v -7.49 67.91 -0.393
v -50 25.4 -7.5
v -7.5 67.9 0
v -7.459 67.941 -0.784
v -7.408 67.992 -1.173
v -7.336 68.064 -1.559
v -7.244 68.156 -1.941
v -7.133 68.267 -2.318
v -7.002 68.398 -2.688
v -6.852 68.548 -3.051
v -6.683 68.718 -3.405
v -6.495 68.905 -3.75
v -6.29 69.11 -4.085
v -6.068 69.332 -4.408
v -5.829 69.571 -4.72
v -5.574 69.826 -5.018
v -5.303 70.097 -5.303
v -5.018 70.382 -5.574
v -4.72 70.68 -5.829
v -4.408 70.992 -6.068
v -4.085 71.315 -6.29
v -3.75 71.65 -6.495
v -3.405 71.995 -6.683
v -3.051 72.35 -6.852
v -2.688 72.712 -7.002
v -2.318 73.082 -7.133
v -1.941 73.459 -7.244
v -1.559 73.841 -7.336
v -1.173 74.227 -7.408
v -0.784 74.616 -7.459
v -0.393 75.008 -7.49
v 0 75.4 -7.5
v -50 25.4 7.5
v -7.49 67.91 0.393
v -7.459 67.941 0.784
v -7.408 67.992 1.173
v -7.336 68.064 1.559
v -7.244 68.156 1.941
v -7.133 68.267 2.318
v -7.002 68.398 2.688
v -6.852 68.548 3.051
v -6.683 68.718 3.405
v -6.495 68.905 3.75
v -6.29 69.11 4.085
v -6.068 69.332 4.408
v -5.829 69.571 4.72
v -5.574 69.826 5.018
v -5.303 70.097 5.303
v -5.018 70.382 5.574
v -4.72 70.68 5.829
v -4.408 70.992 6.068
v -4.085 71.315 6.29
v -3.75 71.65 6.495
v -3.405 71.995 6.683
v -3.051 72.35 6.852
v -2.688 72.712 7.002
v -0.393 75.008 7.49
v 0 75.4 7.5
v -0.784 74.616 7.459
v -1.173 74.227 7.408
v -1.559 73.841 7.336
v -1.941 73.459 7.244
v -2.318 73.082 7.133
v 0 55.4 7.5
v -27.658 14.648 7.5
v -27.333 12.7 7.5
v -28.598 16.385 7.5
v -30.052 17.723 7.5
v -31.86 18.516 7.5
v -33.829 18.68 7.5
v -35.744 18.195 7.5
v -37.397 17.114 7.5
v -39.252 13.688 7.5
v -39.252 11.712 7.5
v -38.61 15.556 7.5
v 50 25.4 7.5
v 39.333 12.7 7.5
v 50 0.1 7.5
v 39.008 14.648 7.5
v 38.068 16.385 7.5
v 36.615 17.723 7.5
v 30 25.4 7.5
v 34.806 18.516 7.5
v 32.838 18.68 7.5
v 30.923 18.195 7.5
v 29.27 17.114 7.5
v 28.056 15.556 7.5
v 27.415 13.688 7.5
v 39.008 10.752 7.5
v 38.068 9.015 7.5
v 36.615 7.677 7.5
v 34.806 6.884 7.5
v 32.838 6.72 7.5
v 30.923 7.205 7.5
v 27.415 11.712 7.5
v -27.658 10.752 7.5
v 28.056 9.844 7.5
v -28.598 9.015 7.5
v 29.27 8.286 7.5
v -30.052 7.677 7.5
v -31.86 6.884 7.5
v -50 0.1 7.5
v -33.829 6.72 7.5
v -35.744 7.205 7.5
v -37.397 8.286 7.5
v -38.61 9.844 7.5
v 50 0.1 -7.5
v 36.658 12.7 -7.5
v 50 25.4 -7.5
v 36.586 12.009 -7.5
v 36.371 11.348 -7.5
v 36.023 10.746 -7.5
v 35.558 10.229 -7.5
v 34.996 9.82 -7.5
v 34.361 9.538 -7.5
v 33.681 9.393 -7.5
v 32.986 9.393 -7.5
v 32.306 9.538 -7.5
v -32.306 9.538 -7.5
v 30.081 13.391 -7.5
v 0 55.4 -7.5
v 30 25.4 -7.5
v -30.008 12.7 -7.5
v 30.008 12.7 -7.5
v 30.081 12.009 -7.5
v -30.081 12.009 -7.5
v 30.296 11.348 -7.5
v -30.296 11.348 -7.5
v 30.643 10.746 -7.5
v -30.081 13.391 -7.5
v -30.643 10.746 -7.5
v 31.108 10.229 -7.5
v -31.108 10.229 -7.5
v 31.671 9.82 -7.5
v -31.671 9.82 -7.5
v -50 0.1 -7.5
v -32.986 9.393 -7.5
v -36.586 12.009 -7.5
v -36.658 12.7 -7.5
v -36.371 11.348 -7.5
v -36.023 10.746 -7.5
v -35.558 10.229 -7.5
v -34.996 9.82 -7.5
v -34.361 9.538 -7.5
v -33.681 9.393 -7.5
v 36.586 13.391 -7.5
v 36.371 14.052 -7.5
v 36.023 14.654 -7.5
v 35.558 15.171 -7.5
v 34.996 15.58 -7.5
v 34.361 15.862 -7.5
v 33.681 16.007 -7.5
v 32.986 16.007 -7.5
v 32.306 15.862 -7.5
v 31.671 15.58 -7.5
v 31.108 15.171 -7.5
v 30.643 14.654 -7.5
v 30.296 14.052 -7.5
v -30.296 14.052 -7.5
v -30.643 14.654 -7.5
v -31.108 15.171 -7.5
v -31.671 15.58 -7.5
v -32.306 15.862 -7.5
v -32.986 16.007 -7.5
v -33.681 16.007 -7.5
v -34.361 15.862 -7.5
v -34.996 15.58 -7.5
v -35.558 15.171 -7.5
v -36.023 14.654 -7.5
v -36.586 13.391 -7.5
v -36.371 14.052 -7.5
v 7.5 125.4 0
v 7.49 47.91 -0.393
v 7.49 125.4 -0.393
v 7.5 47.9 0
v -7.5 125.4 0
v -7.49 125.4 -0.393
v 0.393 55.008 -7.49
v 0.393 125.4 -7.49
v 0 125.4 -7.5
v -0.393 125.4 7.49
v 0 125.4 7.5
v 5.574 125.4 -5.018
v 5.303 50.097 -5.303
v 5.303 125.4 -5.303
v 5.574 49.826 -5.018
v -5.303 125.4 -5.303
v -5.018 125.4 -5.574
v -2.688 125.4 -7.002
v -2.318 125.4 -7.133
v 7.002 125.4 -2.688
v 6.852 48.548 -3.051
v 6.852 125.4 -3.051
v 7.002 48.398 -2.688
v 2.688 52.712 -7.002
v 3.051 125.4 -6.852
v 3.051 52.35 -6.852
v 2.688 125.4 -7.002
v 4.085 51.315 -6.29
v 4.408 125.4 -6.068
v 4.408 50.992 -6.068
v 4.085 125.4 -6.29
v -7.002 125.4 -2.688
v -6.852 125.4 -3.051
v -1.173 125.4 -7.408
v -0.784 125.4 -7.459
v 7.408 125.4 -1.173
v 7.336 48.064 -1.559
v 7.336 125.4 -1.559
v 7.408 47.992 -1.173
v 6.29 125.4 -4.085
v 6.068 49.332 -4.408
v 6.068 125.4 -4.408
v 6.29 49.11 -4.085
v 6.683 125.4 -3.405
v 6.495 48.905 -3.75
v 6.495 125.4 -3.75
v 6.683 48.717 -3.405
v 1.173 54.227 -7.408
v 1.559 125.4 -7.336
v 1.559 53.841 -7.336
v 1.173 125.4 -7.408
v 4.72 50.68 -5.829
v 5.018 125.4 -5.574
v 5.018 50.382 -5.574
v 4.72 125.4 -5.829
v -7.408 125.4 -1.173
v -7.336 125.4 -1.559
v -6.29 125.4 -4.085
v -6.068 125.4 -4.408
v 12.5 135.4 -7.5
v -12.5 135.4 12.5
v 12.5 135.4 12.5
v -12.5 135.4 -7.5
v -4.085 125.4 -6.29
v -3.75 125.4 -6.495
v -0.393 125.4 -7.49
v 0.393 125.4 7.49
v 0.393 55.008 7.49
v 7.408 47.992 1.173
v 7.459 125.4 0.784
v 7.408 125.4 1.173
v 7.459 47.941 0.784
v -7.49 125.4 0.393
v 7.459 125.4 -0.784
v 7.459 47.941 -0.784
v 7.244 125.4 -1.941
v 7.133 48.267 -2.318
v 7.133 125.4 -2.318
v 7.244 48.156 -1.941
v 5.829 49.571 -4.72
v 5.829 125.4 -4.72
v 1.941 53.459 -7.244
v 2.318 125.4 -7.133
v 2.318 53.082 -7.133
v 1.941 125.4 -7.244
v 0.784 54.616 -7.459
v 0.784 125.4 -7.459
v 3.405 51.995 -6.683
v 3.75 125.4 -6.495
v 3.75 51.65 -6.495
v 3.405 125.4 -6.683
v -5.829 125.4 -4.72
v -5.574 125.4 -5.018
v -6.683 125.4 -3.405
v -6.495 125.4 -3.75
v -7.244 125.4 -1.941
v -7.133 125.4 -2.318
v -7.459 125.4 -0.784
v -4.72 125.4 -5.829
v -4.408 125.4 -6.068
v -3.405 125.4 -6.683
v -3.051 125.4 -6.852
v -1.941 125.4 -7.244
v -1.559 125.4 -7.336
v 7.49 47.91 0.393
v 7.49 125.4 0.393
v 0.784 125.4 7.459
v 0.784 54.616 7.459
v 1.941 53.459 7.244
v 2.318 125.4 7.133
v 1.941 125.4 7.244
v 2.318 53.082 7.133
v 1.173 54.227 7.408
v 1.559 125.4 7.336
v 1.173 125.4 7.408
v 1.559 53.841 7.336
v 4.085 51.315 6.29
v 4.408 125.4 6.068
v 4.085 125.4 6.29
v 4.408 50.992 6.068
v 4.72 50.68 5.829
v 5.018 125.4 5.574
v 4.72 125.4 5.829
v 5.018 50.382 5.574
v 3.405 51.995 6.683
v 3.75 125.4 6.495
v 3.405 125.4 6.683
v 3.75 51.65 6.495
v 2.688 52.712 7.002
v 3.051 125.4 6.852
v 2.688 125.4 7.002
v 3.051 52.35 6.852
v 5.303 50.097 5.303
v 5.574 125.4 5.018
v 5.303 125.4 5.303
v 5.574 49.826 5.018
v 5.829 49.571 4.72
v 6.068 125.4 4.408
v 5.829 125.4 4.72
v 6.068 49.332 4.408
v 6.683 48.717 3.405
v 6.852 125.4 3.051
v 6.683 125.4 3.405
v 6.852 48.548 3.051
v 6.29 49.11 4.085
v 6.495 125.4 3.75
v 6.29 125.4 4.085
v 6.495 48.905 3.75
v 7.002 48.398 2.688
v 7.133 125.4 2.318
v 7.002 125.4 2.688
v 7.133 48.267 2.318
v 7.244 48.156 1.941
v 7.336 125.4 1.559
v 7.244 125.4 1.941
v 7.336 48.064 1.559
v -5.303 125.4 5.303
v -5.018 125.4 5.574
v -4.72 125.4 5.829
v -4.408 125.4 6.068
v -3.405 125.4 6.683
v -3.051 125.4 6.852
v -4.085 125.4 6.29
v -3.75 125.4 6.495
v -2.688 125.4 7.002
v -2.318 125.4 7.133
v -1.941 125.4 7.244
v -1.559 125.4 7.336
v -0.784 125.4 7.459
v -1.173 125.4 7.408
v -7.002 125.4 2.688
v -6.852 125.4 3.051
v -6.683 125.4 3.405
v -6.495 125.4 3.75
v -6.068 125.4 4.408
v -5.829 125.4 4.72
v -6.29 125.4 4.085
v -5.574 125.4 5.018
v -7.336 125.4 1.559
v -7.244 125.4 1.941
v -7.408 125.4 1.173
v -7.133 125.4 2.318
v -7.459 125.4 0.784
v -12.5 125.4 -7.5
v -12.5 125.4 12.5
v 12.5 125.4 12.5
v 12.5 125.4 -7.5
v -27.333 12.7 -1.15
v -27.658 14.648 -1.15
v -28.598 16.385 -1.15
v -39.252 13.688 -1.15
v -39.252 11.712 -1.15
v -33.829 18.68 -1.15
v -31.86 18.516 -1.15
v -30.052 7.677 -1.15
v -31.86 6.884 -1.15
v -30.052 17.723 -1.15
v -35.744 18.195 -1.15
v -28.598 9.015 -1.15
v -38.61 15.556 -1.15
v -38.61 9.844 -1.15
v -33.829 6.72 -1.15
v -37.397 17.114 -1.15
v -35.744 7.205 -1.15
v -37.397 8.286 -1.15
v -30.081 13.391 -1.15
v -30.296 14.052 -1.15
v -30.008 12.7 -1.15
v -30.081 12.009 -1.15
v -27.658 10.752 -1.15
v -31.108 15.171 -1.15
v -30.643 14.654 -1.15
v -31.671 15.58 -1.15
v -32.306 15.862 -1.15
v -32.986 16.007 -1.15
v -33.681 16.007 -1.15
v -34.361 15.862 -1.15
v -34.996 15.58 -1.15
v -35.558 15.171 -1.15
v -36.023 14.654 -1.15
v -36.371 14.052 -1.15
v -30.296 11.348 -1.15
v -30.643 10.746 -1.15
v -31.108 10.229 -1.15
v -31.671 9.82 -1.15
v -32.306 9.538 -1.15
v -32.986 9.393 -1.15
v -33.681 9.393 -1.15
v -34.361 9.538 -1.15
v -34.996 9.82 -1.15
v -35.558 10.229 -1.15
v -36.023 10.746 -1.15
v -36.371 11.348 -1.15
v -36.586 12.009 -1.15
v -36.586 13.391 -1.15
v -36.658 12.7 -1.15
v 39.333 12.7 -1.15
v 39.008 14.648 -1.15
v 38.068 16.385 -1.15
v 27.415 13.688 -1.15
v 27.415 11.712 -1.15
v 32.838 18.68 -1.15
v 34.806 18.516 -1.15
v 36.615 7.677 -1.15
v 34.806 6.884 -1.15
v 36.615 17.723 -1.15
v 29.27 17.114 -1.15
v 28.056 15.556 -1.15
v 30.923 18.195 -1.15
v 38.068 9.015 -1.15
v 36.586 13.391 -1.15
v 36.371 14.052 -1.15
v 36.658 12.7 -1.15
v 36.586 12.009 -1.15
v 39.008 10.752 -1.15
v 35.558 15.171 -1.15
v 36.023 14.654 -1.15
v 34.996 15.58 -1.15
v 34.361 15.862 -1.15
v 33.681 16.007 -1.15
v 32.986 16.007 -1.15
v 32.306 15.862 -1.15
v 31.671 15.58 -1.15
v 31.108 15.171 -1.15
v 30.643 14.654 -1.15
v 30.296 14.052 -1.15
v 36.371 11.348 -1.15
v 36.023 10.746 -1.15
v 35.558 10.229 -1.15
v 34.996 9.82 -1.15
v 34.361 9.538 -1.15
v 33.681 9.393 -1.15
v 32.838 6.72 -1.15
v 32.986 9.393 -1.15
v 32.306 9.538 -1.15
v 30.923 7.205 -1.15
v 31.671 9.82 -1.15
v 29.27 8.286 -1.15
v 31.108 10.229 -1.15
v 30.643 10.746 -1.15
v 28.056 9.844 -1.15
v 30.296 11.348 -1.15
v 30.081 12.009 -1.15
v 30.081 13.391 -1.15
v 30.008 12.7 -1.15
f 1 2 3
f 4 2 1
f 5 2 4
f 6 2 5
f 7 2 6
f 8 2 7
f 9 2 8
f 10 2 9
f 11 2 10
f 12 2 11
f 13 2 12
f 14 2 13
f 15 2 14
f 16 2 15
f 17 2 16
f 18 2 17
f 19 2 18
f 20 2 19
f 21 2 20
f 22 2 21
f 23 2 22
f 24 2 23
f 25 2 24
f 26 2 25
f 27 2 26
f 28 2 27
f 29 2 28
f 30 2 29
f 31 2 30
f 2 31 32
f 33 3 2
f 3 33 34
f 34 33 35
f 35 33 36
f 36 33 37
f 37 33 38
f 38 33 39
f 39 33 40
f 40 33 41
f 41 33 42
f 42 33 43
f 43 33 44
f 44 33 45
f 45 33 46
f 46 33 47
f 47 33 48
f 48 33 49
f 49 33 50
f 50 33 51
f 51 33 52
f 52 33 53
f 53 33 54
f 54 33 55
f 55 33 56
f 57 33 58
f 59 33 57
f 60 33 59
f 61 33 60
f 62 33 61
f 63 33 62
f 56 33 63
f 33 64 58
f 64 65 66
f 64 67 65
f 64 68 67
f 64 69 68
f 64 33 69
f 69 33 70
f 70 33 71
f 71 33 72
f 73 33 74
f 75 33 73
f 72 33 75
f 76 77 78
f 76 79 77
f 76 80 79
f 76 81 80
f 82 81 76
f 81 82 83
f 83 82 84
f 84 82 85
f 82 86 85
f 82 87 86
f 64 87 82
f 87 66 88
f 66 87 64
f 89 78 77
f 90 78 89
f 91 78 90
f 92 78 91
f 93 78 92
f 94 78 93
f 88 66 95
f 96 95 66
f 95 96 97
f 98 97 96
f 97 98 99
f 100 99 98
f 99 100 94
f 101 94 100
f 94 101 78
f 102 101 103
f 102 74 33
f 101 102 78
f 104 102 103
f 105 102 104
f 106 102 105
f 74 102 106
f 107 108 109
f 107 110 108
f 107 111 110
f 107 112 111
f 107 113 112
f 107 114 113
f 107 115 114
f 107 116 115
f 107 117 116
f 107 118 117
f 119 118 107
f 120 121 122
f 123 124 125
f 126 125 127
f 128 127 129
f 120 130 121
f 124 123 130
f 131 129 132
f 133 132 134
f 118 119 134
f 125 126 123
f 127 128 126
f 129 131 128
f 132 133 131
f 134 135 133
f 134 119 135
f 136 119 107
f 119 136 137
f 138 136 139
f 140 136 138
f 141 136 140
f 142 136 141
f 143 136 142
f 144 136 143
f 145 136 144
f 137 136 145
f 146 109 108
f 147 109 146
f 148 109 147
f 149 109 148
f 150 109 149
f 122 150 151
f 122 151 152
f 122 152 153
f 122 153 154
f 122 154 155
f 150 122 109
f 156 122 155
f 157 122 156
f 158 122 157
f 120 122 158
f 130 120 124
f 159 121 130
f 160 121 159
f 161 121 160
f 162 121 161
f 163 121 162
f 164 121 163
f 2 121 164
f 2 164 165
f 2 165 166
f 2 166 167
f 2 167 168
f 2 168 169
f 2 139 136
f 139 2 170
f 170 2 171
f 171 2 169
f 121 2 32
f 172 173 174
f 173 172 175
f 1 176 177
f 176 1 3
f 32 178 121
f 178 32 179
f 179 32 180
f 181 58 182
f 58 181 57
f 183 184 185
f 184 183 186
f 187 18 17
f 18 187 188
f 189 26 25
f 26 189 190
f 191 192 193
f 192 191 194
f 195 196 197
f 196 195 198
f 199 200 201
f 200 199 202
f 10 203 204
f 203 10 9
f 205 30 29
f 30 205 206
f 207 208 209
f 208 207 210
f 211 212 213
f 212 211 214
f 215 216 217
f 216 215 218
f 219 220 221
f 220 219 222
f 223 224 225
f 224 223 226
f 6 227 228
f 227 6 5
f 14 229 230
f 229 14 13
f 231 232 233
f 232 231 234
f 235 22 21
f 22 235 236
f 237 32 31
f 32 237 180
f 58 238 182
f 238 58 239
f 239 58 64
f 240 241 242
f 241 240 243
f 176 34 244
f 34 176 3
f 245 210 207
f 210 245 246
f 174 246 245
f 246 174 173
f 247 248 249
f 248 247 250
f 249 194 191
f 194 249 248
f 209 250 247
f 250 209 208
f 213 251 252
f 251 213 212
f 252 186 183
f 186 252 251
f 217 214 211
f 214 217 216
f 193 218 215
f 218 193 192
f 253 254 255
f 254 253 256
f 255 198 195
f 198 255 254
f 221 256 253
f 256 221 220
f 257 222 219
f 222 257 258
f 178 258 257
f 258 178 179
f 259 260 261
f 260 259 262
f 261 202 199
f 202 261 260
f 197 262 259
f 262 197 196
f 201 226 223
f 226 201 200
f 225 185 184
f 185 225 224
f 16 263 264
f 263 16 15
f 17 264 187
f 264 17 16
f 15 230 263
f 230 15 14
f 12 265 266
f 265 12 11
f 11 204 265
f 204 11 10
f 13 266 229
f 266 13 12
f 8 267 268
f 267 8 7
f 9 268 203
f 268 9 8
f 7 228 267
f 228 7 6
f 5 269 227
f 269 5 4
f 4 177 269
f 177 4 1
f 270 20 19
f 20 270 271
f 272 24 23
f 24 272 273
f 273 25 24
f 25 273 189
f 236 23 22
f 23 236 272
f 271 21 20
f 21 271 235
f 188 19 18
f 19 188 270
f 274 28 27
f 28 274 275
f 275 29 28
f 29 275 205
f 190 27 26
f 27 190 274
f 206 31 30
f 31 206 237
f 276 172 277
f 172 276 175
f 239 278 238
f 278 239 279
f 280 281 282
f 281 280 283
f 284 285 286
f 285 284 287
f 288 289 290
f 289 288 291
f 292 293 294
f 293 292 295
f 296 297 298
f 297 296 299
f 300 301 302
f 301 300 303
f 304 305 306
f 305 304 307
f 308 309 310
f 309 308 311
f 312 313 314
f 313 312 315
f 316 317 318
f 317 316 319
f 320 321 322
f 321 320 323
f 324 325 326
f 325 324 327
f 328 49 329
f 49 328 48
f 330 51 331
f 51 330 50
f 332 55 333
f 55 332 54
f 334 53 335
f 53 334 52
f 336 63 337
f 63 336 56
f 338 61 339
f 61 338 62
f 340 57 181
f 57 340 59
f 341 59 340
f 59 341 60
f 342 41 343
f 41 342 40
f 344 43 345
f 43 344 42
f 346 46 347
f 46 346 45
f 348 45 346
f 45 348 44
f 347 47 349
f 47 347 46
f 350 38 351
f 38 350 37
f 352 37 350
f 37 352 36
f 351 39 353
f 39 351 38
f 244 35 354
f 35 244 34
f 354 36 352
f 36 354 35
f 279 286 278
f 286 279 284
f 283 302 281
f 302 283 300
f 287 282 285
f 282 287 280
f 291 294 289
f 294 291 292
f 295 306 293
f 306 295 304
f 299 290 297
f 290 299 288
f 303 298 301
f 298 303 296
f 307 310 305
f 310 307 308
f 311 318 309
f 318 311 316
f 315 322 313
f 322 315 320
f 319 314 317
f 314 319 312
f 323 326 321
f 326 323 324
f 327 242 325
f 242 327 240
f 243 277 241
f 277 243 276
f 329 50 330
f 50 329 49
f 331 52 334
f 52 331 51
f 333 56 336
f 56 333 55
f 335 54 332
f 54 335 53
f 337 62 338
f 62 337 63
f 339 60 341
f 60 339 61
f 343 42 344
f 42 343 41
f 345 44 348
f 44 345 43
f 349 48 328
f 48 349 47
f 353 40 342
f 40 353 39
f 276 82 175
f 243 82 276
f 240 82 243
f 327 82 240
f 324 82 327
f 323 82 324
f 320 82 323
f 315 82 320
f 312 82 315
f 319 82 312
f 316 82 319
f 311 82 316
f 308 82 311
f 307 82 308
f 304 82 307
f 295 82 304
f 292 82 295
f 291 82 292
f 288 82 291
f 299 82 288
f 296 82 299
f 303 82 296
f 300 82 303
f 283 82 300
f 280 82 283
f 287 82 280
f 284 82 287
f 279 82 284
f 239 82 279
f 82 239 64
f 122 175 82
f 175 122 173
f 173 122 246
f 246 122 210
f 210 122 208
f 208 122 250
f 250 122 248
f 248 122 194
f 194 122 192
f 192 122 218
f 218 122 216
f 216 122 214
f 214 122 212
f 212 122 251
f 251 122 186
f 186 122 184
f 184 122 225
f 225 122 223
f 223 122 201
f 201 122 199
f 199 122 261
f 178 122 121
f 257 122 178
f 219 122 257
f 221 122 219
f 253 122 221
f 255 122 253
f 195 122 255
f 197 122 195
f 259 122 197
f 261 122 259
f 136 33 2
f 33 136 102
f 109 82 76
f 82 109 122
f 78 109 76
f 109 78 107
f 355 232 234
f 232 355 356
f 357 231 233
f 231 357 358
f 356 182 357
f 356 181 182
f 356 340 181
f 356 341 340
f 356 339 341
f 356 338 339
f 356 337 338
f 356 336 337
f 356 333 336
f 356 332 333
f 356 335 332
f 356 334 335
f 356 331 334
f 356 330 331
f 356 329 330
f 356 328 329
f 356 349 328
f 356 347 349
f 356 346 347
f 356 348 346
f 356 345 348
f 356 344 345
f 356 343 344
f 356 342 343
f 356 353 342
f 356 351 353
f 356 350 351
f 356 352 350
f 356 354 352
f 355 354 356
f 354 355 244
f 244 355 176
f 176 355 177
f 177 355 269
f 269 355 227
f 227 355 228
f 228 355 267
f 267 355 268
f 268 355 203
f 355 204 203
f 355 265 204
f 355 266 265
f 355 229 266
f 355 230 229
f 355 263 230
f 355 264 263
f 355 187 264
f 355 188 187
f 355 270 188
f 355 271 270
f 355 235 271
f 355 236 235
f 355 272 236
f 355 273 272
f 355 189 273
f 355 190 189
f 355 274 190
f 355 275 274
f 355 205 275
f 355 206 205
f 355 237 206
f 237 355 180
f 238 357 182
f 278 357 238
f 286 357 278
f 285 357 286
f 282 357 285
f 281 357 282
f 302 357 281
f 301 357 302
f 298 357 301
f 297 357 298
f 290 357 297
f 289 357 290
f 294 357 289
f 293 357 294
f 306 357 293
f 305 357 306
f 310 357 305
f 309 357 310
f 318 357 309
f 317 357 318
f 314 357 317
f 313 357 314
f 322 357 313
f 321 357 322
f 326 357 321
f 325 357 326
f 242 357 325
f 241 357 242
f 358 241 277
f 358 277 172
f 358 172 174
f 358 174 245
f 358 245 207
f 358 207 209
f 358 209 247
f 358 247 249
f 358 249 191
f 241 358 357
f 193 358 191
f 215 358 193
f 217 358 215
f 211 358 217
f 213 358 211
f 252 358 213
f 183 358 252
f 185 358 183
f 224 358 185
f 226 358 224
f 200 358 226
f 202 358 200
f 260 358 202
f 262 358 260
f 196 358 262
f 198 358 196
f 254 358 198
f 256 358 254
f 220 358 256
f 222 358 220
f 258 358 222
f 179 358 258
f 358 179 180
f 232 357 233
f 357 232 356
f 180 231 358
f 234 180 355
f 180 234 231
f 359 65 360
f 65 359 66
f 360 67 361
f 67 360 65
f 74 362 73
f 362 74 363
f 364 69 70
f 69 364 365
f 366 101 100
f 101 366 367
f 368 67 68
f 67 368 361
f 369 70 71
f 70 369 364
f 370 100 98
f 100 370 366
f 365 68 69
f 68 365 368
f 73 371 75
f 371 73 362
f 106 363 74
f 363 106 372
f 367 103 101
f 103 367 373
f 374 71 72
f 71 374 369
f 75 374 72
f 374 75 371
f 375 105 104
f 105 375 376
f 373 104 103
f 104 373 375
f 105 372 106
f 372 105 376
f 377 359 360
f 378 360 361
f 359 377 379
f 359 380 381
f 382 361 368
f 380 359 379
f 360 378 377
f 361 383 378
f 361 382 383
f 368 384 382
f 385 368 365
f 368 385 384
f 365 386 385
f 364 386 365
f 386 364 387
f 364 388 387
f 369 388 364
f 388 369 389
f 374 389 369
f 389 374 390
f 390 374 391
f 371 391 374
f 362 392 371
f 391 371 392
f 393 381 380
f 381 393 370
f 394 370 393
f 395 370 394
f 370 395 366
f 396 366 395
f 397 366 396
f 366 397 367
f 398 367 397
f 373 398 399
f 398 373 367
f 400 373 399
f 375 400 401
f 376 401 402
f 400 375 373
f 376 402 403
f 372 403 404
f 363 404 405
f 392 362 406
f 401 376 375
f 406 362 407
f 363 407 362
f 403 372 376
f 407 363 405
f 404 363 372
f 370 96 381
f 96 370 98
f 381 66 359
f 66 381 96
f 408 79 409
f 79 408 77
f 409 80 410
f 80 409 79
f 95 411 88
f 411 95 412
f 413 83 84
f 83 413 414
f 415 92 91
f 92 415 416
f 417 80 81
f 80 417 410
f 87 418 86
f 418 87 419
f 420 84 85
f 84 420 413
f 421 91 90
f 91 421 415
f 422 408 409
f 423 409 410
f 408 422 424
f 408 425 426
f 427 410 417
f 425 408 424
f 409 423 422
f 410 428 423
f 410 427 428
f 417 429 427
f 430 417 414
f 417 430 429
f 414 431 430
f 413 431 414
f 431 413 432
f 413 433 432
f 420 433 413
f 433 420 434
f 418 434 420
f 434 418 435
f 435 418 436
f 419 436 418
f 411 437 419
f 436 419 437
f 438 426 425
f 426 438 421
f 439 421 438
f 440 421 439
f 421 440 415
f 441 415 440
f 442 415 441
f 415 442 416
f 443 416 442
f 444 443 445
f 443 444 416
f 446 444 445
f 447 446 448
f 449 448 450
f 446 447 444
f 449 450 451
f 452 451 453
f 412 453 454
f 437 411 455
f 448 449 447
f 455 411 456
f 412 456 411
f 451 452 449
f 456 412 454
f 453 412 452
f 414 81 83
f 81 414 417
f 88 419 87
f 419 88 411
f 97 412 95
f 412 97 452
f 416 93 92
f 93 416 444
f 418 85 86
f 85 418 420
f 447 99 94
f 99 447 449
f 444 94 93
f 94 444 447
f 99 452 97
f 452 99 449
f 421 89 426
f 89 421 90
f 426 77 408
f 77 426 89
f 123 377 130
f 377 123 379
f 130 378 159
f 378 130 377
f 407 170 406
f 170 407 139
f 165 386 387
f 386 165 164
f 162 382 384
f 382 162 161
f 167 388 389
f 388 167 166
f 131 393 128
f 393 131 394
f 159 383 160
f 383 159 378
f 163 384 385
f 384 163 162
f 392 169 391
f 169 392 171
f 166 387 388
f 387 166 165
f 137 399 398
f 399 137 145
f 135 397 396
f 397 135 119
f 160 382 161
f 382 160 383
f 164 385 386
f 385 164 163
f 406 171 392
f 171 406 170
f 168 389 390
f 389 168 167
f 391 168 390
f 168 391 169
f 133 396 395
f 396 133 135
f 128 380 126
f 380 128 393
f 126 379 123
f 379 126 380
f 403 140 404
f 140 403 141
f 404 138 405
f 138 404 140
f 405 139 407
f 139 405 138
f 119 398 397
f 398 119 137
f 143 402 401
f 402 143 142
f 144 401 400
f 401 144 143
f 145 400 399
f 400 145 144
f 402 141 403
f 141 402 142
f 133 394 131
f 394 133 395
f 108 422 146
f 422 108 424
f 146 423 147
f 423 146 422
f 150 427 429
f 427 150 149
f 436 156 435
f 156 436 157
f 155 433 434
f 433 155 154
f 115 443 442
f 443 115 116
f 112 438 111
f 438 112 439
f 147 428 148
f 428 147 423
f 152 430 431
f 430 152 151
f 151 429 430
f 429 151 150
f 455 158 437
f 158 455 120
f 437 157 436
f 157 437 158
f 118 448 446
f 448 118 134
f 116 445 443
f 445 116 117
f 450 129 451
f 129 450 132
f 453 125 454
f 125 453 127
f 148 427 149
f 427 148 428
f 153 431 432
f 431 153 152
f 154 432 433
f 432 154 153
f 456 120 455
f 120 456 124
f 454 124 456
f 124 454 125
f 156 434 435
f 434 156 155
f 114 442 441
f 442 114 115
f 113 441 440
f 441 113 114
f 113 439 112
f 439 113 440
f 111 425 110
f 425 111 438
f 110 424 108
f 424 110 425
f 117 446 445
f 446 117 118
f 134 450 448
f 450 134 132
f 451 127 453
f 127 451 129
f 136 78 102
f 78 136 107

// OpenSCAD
// file: nutsandbolts/data-access.scad
// Norm Nuts and Bolts - a OpenSCAD library
// Copyright (C) 2012  Johannes Kneer

// This program is free software: you can redistribute it and/or modify
// it under the terms of the GNU General Public License as published by
// the Free Software Foundation, either version 3 of the License, or
// (at your option) any later version.

// This program is distributed in the hope that it will be useful,
// but WITHOUT ANY WARRANTY; without even the implied warranty of
// MERCHANTABILITY or FITNESS FOR A PARTICULAR PURPOSE.  See the
// GNU General Public License for more details.

// You should have received a copy of the GNU General Public License
// along with this program.  If not, see <http://www.gnu.org/licenses/>.


// DATABASE ACCESS FUNCTIONS AND CONSTANTS



// == CONSTANTS ==

// screw table access keys
_NB_S_DESC            = 0;
_NB_S_FAMKEY			 = 1;
_NB_S_LENGTH          = 2;
_NB_S_NOTHREAD_LENGTH = 3;

_NB_F_DESC			 = 0;
_NB_F_OUTER_DIA       = 1;
_NB_F_INNER_DIA       = 2;
_NB_F_LEAD            = 3;
_NB_F_KEY             = 4;
_NB_F_KEY_DEPTH       = 5;
_NB_F_HEAD_HEIGHT     = 6;
_NB_F_HEAD_DIA        = 7;
_NB_F_NUT_KEY         = 8;
_NB_F_NUT_HEIGHT      = 9;


// == FUNCTIONS ==

// _get_screw("descriptor")   with descriptor = M8x25
//   find the line for a general object in the data matrix

function _get_screw(n) = data_screw[search([n], data_screw)[0]];
function _get_screw_fam(n) = data_screw_fam[search([_get_screw(n)[_NB_S_FAMKEY]], data_screw_fam)[0]];

function _get_fam(n) = data_screw_fam[search([n], data_screw_fam)[0]];


// _get_XXXXX("descriptor") functions
// find a single property in the database

function _get_desc(n)        = _get_screw(n)[_NB_S_DESC];
function _get_famkey(n)         = _get_screw(n)[_NB_S_FAMKEY];
function _get_length(n)      = _get_screw(n)[_NB_S_LENGTH];
function _get_nt_length(n)   = _get_screw(n)[_NB_S_NOTHREAD_LENGTH];

function _get_outer_dia(n)   = _get_screw_fam(n)[_NB_F_OUTER_DIA];
function _get_inner_dia(n)   = _get_screw_fam(n)[_NB_F_INNER_DIA];
function _get_lead(n)        = _get_screw_fam(n)[_NB_F_LEAD];
function _get_head_height(n) = _get_screw_fam(n)[_NB_F_HEAD_HEIGHT];
function _get_head_dia(n)    = _get_screw_fam(n)[_NB_F_HEAD_DIA];
function _get_nut_key(n)     = _get_screw_fam(n)[_NB_F_NUT_KEY];
function _get_nut_height(n)  = _get_screw_fam(n)[_NB_F_NUT_HEIGHT];
// file: screws.scad
include <nutsandbolts/cyl_head_bolt.scad>;

// get screw
function get_screw(name) =
  // different screws
  let(screws = [
    // screw name; screw diameter; countersink parameter (head diameter, head depth)
    ["M3", 3, [6, 4.5]],
    ["4-40", 2.9, [5.3, 4.5]],
    ["M4", 4, [8, 5.5]], // NOTE: counter sink dimensions not confirmed
    ["M5", 5, [10, 6.5]], // NOTE: counter sink dimensions not confirmed
    ["1/4-20", 6.35, [13.50, 4.09]] // NOTE: dimensions from mcmaster carr https://www.mcmaster.com/#92210a537/=1did9kw
  ])
  screws[search([name], screws)[0]];

// make a machine screw
// @param name which screw
// @param length how long to make the hole maximally
// @param countersink whether to countersink the screw
// @param tolerance what tolerance to add (in mm) to the screw radius
// @param stretch how much to stretch (in mm) the radius in the x direction (to account for collapse in vertical printing), added on top of the tolerance
// @param z_plus how much thicker to make shape in z (for cutouts)
// @param fn $fn parameter
module machine_screw (name, length, countersink = true, tolerance = 0.15, stretch = 0, z_plus = 0, fn = 30) {
  // parameters
  screw = get_screw(name);
  screw_d = screw[1]; // diameter
  screw_cs = screw[2]; // counter snk
  if (countersink && screw_cs[1] > length) {
    echo("warning - length is shorter than countersink cutout");
  }

  union() {
    translate([0, 0, -z_plus])
      resize([screw_d+2*tolerance+2*stretch, 0, 0])
        cylinder(h=length+2*z_plus, d=screw_d+2*tolerance, center=false, $fn=fn);
    if (countersink) {
      translate([0, 0, -z_plus])
        resize([screw_cs[0]+2*stretch, 0, 0])
          cylinder(h=screw_cs[1], d1=screw_cs[0], d2=0, center=false, $fn=fn);
    }
  }
}

// make a threaded machine screw --> uses the https://github.com/JohK/nutsnbolts library
// @param name which screw
// @param length how long to make the hole maximally
// @param countersink whether to countersink the screw
// @render_threads true/false whether to render the threads, set the global $render_threads = true; to turn on globally
module threaded_machine_screw (name, length, countersink = false, render_threads = $render_threads) {
  if (countersink) {
    echo("warning - countersink not yet implemented for threaded machine screws");
    // note: this should be possible with the dimensions from the screws library for head diameter and head height!
  }
  translate([0, 0, length])
  if (render_threads) {
    hole_threaded(name = name, thread = "modeled", l = length);
  } else {
    hole_threaded(name = name, thread = "no", l = length);
  }
}

// examples
color("yellow") machine_screw("M3", 5, countersink = false);
color("green") translate([0, 10, 0]) machine_screw("M3", 10);
color("purple") translate([0, 20, 0]) machine_screw("M3", 5, tolerance = 0.5, stretch = 0.5);
color("red") translate([0, -10, 0]) machine_screw("M4", 8);
color("blue") translate([0, -20, 0]) machine_screw("M4", 3, z_plus = 1);



// get hex nut
function get_hexnut(name) =
  // different nuts
  let(nuts = [
    // nut name; nut width (not the radius!); nut thickness
    ["M3", 5.5, 2.4],
    ["M4", 7, 3.2],
    ["M5", 8, 4]
  ])
  nuts[search([name], nuts)[0]];


// make a hexnut
// @param name which hexnut
// @param tolerance what tolerance to add (in mm) to the screw radius
// @param stretch how much to stretch (in mm) the radius in the x direction (to account for collapse in vertical printing), added on top of the tolerance
// @param z_plus how much thicker to make shape in z (for cutouts)
// @param align whether to align the hexnut to the "bottom" (default), "center" or "top" of the current location (not the bottom)
module hexnut (name, tolerance = 0.025, stretch = 0, z_plus = 0, screw_hole = true, align = "bottom") {
  nut = get_hexnut(name);
  nut_d = nut[1]/cos(180/6)+2*tolerance; // diameter
  nut_h = nut[2]+2*z_plus; // thickness
  move_z = (align == "top") ? [0, 0, -nut[2]] : ((align == "center") ? [0, 0, -nut[2]/2] : [0, 0, 0]);
  translate([0, 0, -z_plus])
    // apply stretch to whole shape
    resize([nut_d+2*stretch, 0, 0])
      difference() {
        translate(move_z) cylinder(h=nut_h, d=nut_d, center=false, $fn=6);
        if (screw_hole) {
          // generating screw hole with default tolerance
          translate(move_z) machine_screw(name, nut_h, z_plus = 0.1, countersink = false);
        }
      }
}

// examples
color("yellow") translate([10, 0, 0]) hexnut("M3");
color("green") translate([10, 10, 0]) hexnut("M3", z_plus = 0.15);
color("purple") translate([10, 20, 0]) hexnut("M3", 5, tolerance = 0.5, stretch = 1);
color("red") translate([10, -10, 0]) hexnut("M4");
color("blue") translate([10, -20, 0]) hexnut("M4", screw_hole = false);
// file: utils.scad
// common convenience functions and modules
use <screws.scad>;

// x/y but not z centered cube (regular center=true also centered z)
module xy_center_cube (size) {
  translate([-size[0]/2, -size[1]/2, 0])
  cube(size, center=false);
}

xy_center_cube([40, 20, 4]);


// x/y center cube with feet
// @param feet how many feet to add
// @param foot_height what the height of each foot is (in mm)
// @param tolerance what tolerance to build into the feet to make sure stacking works
// @param stackable whether it should be stackable or not
module xy_center_cube_with_feet (size, feet = 2, foot_height = 5, tolerance = 0.3, stackable = true) {
  foot_d = foot_height/cos(180/6);
  foot_list = [for (i = [1 : 1 : feet]) i];
  foot_spacing = size[0]/(2*feet);
  difference() {
    union() {
      translate([-size[0]/2, -size[1]/2, 0])
        cube(size, center=false);

      // add feet
      for(i = foot_list)
        translate([-size[0]/2 + (2*i - 1) * foot_spacing, - size[1]/2, 0])
          rotate([0, 0, 0])
            cylinder(h=size[2] - tolerance, d=foot_d, $fn=6, center = false);
    }
    if (stackable) {
      // add feet cutout
      z_plus = 0.1; // z plus for cutouts
      for(i = foot_list)
        translate([-size[0]/2 + (2*i - 1) * foot_spacing, + size[1]/2, -z_plus])
          rotate([0, 0, 0])
            cylinder(h=size[2]+2*z_plus, d=foot_d+tolerance, $fn=6, center = false);
    }
  }
}

translate([0, 40, 0])
  color("green")
    xy_center_cube_with_feet([40, 20, 4]);


translate([0, -40, 0])
  color("red")
    xy_center_cube_with_feet([80, 20, 4], feet = 5, foot_height = 6, stackable = false);


// standard attachment for a rectangular module affixed on top of a board
// @param thickness how thick base board is
// @param screws array of screw parameters (type, location x, location y, tolerance)
// @param block array of cube parameters (length, width, offset from base board, thickness)
// @param location central point of the cutout
// @param rotation how much to rotate
// @param show whether to show cube (not intended for printing)
module block_attachment (thickness, screws, block, location = [0,0,0], rotation = [0,0,0], show = false) {
  // parameters
  z_plus = 0.1; // how much thicker to make cutouts in z

  difference() {
    union() {
      children(0);
      if (show) {
        // cube outline (not printed)
        translate(location) rotate(rotation)
          translate([0, 0, thickness+block[2]])
            #xy_center_cube([block[0], block[1], block[3]]);
      }
    }

    translate(location)
      rotate(rotation) {
        // screw holes
        for(x=[-1, 1])
          for(y=[-1, 1])
            translate([x*screws[1], y*screws[2], 0])
              machine_screw(screws[0], thickness+block[0]+block[1], tolerance = screws[3], z_plus = z_plus);
      }
  }
}

translate([80, 30, 0])
  color("blue")
    block_attachment(10, ["M3", 15, 5, 0.2], [40, 20, 5, 10], show = true)
      xy_center_cube([60, 30, 10]);

translate([80, -30, 0])
  color("blue")
    block_attachment(10, ["M3", 15, 5, 0.2], [40, 20, 5, 10], show = false)
      xy_center_cube([60, 30, 10]);
// main file
use <utils.scad>;
use <screws.scad>;


// holder for mounting J-KEM OH5-DSC stirrer controller
module stirrer_controller_holder() {

  rod_diameter = 15;
  rod_height = 80;
  base = [100, rod_diameter, 25.4];
  stop = [rod_diameter + 10, rod_diameter + 5, 10];
  right_support_height = 30;
  left_support_height = base[0]/2;
  screw_head_diameter = 12;
  attachment_thickness = 6.35;

  difference() {
    union() {
      cylinder(h=rod_height + base[2] + right_support_height, d=rod_diameter, $fn = 120);
      // right suport
      translate([-right_support_height/2, 0, base[2]-right_support_height/2])
        rotate([0, 45, 0])
          xy_center_cube([2*right_support_height/sqrt(2), rod_diameter, 2*right_support_height/sqrt(2)]);
      // left suport
      difference() {
        translate([-left_support_height/2, 0, base[2]-left_support_height/2])
          rotate([0, 45, 0])
            xy_center_cube([sqrt(2)*left_support_height, rod_diameter, sqrt(2)*left_support_height]);
        translate([left_support_height/2, 0, 0])
          xy_center_cube([left_support_height, rod_diameter+0.01, 2*left_support_height]);
      }
      // base
      xy_center_cube(base);
      // top of rod
      translate([0, rod_diameter/2 - stop[1]/2, rod_height + base[2] + right_support_height - stop[2]])
        xy_center_cube(stop);
    };

    // shave off bottom
    translate([0, 0, -base[2] - left_support_height/2 + 0.5])
      xy_center_cube([base[0]+0.01, rod_diameter+0.01, left_support_height]);

    for(x=[-1, 1])
      translate([x*base[0]/3, rod_diameter/2-attachment_thickness, base[2]/2])
        rotate([90, 0, 0])
          cylinder(h=rod_diameter-attachment_thickness+0.01, d = screw_head_diameter);

    for(x=[-1, 1])
      translate([x*base[0]/3, rod_diameter/2, base[2]/2])
        rotate([90, 0, 0])
          machine_screw("1/4-20", rod_diameter, countersink = false, tolerance = 0.15, z_plus =0.01);
  };
}

rotate([-90, 0, 0])
stirrer_controller_holder();
